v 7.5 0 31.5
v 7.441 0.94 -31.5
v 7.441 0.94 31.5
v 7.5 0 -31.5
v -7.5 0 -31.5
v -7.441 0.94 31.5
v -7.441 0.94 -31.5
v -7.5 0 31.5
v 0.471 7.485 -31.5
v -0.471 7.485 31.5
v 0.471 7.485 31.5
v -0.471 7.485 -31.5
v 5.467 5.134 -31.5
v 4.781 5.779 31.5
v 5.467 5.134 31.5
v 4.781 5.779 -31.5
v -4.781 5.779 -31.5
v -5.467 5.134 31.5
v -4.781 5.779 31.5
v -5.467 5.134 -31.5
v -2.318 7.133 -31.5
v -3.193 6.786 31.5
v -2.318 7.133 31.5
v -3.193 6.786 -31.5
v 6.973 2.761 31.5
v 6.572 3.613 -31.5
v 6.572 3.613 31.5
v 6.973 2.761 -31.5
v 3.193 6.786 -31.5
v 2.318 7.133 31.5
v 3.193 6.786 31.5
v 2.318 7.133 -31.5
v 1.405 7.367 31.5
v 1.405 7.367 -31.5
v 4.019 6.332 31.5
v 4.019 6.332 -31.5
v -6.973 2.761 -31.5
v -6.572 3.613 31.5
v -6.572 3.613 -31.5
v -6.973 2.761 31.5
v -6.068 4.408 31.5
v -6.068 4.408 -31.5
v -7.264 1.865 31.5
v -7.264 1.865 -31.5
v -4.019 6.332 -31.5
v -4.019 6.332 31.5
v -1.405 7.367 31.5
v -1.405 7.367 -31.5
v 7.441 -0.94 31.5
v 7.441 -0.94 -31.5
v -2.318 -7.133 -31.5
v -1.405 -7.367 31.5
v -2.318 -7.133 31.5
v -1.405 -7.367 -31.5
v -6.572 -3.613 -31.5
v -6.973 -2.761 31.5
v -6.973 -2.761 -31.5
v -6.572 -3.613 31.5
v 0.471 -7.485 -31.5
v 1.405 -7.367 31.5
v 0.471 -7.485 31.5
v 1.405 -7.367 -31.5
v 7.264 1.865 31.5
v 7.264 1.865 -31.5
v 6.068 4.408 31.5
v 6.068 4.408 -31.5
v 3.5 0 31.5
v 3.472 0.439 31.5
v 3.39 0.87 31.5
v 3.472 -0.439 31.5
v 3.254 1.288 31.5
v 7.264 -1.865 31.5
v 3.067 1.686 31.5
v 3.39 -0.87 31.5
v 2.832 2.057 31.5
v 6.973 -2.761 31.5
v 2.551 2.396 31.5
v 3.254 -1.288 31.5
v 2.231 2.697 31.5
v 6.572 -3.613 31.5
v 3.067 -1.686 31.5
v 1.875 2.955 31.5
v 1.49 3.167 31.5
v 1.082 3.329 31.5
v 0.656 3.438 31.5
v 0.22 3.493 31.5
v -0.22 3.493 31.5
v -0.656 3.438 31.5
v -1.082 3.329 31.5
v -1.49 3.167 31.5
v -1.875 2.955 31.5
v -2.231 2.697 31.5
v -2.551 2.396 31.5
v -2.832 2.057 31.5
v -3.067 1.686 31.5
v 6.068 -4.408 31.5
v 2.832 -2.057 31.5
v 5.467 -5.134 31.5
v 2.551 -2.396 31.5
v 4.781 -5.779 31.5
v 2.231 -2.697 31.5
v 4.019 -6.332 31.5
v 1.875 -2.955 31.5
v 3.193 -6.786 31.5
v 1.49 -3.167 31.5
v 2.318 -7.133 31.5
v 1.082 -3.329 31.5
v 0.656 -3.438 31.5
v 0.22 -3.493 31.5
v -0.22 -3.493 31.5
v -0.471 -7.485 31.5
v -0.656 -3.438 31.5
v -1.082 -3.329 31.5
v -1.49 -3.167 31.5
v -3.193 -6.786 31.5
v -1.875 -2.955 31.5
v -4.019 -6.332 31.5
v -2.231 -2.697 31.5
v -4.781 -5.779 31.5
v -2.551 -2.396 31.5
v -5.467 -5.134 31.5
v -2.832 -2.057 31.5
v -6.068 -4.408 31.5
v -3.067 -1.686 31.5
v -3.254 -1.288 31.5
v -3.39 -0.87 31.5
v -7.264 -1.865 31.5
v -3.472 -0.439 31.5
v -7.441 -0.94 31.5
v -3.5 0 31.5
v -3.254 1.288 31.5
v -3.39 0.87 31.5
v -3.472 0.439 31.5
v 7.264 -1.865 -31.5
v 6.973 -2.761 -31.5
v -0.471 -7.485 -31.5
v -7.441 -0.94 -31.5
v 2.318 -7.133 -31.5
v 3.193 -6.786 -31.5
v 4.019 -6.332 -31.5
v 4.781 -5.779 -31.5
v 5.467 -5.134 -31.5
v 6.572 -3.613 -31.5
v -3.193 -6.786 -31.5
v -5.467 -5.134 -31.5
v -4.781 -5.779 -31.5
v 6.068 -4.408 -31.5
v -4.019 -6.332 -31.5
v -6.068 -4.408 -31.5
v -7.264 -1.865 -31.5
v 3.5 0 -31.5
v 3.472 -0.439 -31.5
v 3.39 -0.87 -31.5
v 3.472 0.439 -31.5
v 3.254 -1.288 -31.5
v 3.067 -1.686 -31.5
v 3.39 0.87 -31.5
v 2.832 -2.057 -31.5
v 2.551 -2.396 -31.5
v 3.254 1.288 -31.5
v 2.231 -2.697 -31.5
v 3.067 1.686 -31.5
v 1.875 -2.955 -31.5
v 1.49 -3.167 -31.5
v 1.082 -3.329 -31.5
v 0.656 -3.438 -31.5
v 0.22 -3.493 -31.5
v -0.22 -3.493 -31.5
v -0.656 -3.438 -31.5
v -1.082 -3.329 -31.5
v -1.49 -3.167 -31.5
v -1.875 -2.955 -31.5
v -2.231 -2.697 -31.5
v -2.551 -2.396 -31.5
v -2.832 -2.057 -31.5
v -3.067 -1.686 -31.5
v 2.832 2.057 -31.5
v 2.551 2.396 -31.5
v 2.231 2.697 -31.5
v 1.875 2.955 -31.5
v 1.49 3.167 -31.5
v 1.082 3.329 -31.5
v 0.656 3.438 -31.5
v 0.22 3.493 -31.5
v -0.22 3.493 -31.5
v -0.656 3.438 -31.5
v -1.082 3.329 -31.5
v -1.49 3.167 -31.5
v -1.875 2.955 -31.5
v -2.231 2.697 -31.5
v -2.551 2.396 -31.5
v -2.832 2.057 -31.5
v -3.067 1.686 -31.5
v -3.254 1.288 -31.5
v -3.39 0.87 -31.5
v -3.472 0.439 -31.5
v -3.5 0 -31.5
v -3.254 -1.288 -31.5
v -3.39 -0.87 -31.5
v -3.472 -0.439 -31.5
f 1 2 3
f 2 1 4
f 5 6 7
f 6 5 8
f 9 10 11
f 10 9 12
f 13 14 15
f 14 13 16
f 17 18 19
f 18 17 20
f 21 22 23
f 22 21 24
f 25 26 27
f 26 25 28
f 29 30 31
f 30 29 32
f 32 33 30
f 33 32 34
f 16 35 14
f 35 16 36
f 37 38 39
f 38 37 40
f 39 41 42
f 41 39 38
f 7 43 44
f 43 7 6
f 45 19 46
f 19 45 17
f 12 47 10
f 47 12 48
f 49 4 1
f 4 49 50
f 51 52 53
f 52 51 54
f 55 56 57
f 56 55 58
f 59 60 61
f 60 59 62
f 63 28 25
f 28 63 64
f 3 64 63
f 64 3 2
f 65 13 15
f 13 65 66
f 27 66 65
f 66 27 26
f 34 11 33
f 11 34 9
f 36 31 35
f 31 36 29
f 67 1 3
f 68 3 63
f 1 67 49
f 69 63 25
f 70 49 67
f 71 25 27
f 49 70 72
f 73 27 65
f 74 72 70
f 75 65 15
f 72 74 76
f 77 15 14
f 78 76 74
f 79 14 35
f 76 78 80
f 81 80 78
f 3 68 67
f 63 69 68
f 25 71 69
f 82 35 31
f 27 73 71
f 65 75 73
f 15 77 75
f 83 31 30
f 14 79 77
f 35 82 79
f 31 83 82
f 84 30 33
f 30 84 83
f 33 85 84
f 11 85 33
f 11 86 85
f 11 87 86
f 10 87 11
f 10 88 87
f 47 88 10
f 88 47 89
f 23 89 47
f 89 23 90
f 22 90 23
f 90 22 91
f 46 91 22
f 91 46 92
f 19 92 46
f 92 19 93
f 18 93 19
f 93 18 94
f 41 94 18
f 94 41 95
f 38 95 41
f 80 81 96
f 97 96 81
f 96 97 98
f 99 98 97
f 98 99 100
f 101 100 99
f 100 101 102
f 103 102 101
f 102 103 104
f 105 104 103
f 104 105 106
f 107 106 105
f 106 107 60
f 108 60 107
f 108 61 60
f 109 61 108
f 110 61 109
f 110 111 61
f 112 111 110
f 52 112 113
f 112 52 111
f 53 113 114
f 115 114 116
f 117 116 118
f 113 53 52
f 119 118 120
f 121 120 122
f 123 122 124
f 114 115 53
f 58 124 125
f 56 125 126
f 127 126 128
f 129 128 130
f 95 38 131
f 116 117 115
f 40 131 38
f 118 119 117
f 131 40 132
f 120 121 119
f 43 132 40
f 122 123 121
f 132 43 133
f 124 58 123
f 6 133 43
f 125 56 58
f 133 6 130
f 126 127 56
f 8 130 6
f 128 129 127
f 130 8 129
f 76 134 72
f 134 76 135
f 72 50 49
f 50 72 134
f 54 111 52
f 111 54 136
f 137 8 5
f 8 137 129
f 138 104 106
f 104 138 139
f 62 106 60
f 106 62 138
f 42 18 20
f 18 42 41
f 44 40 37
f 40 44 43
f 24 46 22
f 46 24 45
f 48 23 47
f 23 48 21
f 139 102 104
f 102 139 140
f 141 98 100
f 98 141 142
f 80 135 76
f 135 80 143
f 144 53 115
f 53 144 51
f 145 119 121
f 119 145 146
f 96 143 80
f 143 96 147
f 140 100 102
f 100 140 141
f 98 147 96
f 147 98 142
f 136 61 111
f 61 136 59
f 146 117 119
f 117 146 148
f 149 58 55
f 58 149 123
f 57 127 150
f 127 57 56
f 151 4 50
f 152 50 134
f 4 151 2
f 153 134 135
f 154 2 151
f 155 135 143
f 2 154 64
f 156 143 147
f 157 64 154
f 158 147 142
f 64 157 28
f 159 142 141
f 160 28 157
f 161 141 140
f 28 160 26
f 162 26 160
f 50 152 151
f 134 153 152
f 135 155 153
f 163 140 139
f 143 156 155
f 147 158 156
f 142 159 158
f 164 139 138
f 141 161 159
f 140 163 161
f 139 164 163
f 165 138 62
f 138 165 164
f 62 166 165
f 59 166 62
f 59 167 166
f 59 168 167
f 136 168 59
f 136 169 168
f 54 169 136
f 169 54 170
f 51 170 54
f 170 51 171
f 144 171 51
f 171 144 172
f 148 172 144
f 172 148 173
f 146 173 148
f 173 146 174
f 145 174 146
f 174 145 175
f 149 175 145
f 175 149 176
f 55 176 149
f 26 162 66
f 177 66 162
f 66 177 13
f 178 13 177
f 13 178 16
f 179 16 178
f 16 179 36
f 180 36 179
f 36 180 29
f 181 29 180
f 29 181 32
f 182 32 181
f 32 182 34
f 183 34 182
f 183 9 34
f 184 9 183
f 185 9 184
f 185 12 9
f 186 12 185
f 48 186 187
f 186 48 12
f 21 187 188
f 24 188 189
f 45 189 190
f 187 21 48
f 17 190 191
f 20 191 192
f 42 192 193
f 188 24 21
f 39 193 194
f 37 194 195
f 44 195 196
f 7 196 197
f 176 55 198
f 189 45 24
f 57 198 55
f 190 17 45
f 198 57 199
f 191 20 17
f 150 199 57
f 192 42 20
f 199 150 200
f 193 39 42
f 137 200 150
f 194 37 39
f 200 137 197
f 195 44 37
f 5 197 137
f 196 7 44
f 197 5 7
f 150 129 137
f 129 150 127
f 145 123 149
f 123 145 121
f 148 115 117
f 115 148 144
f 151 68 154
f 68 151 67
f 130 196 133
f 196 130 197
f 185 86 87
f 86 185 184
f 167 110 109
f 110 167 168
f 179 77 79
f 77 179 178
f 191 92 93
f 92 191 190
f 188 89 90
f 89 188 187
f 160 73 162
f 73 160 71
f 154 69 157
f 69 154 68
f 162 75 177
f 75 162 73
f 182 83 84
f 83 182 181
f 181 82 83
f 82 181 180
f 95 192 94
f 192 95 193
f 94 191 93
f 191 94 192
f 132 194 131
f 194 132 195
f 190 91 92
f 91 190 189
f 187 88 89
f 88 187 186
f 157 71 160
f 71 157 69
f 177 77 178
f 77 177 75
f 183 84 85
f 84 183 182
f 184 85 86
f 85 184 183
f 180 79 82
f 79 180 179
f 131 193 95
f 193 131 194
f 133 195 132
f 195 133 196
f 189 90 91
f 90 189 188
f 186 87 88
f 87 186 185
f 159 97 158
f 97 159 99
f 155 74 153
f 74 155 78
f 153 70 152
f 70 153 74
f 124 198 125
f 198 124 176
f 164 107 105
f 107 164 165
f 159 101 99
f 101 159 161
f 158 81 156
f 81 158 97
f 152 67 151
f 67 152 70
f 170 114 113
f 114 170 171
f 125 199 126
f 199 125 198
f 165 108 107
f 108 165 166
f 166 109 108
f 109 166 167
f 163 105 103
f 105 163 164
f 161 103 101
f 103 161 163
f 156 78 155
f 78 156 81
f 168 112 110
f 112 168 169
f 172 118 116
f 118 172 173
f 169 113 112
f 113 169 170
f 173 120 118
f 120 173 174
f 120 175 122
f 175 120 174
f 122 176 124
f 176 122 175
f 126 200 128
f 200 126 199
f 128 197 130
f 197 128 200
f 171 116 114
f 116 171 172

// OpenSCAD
$fn = 50;


difference() {
	union() {
		translate(v = [0, 0, -31.5000000000]) {
			cylinder(h = 63, r = 7.5000000000);
		}
	}
	union() {
		translate(v = [0, 0, -100.0000000000]) {
			cylinder(h = 200, r = 3.5000000000);
		}
	}
}
